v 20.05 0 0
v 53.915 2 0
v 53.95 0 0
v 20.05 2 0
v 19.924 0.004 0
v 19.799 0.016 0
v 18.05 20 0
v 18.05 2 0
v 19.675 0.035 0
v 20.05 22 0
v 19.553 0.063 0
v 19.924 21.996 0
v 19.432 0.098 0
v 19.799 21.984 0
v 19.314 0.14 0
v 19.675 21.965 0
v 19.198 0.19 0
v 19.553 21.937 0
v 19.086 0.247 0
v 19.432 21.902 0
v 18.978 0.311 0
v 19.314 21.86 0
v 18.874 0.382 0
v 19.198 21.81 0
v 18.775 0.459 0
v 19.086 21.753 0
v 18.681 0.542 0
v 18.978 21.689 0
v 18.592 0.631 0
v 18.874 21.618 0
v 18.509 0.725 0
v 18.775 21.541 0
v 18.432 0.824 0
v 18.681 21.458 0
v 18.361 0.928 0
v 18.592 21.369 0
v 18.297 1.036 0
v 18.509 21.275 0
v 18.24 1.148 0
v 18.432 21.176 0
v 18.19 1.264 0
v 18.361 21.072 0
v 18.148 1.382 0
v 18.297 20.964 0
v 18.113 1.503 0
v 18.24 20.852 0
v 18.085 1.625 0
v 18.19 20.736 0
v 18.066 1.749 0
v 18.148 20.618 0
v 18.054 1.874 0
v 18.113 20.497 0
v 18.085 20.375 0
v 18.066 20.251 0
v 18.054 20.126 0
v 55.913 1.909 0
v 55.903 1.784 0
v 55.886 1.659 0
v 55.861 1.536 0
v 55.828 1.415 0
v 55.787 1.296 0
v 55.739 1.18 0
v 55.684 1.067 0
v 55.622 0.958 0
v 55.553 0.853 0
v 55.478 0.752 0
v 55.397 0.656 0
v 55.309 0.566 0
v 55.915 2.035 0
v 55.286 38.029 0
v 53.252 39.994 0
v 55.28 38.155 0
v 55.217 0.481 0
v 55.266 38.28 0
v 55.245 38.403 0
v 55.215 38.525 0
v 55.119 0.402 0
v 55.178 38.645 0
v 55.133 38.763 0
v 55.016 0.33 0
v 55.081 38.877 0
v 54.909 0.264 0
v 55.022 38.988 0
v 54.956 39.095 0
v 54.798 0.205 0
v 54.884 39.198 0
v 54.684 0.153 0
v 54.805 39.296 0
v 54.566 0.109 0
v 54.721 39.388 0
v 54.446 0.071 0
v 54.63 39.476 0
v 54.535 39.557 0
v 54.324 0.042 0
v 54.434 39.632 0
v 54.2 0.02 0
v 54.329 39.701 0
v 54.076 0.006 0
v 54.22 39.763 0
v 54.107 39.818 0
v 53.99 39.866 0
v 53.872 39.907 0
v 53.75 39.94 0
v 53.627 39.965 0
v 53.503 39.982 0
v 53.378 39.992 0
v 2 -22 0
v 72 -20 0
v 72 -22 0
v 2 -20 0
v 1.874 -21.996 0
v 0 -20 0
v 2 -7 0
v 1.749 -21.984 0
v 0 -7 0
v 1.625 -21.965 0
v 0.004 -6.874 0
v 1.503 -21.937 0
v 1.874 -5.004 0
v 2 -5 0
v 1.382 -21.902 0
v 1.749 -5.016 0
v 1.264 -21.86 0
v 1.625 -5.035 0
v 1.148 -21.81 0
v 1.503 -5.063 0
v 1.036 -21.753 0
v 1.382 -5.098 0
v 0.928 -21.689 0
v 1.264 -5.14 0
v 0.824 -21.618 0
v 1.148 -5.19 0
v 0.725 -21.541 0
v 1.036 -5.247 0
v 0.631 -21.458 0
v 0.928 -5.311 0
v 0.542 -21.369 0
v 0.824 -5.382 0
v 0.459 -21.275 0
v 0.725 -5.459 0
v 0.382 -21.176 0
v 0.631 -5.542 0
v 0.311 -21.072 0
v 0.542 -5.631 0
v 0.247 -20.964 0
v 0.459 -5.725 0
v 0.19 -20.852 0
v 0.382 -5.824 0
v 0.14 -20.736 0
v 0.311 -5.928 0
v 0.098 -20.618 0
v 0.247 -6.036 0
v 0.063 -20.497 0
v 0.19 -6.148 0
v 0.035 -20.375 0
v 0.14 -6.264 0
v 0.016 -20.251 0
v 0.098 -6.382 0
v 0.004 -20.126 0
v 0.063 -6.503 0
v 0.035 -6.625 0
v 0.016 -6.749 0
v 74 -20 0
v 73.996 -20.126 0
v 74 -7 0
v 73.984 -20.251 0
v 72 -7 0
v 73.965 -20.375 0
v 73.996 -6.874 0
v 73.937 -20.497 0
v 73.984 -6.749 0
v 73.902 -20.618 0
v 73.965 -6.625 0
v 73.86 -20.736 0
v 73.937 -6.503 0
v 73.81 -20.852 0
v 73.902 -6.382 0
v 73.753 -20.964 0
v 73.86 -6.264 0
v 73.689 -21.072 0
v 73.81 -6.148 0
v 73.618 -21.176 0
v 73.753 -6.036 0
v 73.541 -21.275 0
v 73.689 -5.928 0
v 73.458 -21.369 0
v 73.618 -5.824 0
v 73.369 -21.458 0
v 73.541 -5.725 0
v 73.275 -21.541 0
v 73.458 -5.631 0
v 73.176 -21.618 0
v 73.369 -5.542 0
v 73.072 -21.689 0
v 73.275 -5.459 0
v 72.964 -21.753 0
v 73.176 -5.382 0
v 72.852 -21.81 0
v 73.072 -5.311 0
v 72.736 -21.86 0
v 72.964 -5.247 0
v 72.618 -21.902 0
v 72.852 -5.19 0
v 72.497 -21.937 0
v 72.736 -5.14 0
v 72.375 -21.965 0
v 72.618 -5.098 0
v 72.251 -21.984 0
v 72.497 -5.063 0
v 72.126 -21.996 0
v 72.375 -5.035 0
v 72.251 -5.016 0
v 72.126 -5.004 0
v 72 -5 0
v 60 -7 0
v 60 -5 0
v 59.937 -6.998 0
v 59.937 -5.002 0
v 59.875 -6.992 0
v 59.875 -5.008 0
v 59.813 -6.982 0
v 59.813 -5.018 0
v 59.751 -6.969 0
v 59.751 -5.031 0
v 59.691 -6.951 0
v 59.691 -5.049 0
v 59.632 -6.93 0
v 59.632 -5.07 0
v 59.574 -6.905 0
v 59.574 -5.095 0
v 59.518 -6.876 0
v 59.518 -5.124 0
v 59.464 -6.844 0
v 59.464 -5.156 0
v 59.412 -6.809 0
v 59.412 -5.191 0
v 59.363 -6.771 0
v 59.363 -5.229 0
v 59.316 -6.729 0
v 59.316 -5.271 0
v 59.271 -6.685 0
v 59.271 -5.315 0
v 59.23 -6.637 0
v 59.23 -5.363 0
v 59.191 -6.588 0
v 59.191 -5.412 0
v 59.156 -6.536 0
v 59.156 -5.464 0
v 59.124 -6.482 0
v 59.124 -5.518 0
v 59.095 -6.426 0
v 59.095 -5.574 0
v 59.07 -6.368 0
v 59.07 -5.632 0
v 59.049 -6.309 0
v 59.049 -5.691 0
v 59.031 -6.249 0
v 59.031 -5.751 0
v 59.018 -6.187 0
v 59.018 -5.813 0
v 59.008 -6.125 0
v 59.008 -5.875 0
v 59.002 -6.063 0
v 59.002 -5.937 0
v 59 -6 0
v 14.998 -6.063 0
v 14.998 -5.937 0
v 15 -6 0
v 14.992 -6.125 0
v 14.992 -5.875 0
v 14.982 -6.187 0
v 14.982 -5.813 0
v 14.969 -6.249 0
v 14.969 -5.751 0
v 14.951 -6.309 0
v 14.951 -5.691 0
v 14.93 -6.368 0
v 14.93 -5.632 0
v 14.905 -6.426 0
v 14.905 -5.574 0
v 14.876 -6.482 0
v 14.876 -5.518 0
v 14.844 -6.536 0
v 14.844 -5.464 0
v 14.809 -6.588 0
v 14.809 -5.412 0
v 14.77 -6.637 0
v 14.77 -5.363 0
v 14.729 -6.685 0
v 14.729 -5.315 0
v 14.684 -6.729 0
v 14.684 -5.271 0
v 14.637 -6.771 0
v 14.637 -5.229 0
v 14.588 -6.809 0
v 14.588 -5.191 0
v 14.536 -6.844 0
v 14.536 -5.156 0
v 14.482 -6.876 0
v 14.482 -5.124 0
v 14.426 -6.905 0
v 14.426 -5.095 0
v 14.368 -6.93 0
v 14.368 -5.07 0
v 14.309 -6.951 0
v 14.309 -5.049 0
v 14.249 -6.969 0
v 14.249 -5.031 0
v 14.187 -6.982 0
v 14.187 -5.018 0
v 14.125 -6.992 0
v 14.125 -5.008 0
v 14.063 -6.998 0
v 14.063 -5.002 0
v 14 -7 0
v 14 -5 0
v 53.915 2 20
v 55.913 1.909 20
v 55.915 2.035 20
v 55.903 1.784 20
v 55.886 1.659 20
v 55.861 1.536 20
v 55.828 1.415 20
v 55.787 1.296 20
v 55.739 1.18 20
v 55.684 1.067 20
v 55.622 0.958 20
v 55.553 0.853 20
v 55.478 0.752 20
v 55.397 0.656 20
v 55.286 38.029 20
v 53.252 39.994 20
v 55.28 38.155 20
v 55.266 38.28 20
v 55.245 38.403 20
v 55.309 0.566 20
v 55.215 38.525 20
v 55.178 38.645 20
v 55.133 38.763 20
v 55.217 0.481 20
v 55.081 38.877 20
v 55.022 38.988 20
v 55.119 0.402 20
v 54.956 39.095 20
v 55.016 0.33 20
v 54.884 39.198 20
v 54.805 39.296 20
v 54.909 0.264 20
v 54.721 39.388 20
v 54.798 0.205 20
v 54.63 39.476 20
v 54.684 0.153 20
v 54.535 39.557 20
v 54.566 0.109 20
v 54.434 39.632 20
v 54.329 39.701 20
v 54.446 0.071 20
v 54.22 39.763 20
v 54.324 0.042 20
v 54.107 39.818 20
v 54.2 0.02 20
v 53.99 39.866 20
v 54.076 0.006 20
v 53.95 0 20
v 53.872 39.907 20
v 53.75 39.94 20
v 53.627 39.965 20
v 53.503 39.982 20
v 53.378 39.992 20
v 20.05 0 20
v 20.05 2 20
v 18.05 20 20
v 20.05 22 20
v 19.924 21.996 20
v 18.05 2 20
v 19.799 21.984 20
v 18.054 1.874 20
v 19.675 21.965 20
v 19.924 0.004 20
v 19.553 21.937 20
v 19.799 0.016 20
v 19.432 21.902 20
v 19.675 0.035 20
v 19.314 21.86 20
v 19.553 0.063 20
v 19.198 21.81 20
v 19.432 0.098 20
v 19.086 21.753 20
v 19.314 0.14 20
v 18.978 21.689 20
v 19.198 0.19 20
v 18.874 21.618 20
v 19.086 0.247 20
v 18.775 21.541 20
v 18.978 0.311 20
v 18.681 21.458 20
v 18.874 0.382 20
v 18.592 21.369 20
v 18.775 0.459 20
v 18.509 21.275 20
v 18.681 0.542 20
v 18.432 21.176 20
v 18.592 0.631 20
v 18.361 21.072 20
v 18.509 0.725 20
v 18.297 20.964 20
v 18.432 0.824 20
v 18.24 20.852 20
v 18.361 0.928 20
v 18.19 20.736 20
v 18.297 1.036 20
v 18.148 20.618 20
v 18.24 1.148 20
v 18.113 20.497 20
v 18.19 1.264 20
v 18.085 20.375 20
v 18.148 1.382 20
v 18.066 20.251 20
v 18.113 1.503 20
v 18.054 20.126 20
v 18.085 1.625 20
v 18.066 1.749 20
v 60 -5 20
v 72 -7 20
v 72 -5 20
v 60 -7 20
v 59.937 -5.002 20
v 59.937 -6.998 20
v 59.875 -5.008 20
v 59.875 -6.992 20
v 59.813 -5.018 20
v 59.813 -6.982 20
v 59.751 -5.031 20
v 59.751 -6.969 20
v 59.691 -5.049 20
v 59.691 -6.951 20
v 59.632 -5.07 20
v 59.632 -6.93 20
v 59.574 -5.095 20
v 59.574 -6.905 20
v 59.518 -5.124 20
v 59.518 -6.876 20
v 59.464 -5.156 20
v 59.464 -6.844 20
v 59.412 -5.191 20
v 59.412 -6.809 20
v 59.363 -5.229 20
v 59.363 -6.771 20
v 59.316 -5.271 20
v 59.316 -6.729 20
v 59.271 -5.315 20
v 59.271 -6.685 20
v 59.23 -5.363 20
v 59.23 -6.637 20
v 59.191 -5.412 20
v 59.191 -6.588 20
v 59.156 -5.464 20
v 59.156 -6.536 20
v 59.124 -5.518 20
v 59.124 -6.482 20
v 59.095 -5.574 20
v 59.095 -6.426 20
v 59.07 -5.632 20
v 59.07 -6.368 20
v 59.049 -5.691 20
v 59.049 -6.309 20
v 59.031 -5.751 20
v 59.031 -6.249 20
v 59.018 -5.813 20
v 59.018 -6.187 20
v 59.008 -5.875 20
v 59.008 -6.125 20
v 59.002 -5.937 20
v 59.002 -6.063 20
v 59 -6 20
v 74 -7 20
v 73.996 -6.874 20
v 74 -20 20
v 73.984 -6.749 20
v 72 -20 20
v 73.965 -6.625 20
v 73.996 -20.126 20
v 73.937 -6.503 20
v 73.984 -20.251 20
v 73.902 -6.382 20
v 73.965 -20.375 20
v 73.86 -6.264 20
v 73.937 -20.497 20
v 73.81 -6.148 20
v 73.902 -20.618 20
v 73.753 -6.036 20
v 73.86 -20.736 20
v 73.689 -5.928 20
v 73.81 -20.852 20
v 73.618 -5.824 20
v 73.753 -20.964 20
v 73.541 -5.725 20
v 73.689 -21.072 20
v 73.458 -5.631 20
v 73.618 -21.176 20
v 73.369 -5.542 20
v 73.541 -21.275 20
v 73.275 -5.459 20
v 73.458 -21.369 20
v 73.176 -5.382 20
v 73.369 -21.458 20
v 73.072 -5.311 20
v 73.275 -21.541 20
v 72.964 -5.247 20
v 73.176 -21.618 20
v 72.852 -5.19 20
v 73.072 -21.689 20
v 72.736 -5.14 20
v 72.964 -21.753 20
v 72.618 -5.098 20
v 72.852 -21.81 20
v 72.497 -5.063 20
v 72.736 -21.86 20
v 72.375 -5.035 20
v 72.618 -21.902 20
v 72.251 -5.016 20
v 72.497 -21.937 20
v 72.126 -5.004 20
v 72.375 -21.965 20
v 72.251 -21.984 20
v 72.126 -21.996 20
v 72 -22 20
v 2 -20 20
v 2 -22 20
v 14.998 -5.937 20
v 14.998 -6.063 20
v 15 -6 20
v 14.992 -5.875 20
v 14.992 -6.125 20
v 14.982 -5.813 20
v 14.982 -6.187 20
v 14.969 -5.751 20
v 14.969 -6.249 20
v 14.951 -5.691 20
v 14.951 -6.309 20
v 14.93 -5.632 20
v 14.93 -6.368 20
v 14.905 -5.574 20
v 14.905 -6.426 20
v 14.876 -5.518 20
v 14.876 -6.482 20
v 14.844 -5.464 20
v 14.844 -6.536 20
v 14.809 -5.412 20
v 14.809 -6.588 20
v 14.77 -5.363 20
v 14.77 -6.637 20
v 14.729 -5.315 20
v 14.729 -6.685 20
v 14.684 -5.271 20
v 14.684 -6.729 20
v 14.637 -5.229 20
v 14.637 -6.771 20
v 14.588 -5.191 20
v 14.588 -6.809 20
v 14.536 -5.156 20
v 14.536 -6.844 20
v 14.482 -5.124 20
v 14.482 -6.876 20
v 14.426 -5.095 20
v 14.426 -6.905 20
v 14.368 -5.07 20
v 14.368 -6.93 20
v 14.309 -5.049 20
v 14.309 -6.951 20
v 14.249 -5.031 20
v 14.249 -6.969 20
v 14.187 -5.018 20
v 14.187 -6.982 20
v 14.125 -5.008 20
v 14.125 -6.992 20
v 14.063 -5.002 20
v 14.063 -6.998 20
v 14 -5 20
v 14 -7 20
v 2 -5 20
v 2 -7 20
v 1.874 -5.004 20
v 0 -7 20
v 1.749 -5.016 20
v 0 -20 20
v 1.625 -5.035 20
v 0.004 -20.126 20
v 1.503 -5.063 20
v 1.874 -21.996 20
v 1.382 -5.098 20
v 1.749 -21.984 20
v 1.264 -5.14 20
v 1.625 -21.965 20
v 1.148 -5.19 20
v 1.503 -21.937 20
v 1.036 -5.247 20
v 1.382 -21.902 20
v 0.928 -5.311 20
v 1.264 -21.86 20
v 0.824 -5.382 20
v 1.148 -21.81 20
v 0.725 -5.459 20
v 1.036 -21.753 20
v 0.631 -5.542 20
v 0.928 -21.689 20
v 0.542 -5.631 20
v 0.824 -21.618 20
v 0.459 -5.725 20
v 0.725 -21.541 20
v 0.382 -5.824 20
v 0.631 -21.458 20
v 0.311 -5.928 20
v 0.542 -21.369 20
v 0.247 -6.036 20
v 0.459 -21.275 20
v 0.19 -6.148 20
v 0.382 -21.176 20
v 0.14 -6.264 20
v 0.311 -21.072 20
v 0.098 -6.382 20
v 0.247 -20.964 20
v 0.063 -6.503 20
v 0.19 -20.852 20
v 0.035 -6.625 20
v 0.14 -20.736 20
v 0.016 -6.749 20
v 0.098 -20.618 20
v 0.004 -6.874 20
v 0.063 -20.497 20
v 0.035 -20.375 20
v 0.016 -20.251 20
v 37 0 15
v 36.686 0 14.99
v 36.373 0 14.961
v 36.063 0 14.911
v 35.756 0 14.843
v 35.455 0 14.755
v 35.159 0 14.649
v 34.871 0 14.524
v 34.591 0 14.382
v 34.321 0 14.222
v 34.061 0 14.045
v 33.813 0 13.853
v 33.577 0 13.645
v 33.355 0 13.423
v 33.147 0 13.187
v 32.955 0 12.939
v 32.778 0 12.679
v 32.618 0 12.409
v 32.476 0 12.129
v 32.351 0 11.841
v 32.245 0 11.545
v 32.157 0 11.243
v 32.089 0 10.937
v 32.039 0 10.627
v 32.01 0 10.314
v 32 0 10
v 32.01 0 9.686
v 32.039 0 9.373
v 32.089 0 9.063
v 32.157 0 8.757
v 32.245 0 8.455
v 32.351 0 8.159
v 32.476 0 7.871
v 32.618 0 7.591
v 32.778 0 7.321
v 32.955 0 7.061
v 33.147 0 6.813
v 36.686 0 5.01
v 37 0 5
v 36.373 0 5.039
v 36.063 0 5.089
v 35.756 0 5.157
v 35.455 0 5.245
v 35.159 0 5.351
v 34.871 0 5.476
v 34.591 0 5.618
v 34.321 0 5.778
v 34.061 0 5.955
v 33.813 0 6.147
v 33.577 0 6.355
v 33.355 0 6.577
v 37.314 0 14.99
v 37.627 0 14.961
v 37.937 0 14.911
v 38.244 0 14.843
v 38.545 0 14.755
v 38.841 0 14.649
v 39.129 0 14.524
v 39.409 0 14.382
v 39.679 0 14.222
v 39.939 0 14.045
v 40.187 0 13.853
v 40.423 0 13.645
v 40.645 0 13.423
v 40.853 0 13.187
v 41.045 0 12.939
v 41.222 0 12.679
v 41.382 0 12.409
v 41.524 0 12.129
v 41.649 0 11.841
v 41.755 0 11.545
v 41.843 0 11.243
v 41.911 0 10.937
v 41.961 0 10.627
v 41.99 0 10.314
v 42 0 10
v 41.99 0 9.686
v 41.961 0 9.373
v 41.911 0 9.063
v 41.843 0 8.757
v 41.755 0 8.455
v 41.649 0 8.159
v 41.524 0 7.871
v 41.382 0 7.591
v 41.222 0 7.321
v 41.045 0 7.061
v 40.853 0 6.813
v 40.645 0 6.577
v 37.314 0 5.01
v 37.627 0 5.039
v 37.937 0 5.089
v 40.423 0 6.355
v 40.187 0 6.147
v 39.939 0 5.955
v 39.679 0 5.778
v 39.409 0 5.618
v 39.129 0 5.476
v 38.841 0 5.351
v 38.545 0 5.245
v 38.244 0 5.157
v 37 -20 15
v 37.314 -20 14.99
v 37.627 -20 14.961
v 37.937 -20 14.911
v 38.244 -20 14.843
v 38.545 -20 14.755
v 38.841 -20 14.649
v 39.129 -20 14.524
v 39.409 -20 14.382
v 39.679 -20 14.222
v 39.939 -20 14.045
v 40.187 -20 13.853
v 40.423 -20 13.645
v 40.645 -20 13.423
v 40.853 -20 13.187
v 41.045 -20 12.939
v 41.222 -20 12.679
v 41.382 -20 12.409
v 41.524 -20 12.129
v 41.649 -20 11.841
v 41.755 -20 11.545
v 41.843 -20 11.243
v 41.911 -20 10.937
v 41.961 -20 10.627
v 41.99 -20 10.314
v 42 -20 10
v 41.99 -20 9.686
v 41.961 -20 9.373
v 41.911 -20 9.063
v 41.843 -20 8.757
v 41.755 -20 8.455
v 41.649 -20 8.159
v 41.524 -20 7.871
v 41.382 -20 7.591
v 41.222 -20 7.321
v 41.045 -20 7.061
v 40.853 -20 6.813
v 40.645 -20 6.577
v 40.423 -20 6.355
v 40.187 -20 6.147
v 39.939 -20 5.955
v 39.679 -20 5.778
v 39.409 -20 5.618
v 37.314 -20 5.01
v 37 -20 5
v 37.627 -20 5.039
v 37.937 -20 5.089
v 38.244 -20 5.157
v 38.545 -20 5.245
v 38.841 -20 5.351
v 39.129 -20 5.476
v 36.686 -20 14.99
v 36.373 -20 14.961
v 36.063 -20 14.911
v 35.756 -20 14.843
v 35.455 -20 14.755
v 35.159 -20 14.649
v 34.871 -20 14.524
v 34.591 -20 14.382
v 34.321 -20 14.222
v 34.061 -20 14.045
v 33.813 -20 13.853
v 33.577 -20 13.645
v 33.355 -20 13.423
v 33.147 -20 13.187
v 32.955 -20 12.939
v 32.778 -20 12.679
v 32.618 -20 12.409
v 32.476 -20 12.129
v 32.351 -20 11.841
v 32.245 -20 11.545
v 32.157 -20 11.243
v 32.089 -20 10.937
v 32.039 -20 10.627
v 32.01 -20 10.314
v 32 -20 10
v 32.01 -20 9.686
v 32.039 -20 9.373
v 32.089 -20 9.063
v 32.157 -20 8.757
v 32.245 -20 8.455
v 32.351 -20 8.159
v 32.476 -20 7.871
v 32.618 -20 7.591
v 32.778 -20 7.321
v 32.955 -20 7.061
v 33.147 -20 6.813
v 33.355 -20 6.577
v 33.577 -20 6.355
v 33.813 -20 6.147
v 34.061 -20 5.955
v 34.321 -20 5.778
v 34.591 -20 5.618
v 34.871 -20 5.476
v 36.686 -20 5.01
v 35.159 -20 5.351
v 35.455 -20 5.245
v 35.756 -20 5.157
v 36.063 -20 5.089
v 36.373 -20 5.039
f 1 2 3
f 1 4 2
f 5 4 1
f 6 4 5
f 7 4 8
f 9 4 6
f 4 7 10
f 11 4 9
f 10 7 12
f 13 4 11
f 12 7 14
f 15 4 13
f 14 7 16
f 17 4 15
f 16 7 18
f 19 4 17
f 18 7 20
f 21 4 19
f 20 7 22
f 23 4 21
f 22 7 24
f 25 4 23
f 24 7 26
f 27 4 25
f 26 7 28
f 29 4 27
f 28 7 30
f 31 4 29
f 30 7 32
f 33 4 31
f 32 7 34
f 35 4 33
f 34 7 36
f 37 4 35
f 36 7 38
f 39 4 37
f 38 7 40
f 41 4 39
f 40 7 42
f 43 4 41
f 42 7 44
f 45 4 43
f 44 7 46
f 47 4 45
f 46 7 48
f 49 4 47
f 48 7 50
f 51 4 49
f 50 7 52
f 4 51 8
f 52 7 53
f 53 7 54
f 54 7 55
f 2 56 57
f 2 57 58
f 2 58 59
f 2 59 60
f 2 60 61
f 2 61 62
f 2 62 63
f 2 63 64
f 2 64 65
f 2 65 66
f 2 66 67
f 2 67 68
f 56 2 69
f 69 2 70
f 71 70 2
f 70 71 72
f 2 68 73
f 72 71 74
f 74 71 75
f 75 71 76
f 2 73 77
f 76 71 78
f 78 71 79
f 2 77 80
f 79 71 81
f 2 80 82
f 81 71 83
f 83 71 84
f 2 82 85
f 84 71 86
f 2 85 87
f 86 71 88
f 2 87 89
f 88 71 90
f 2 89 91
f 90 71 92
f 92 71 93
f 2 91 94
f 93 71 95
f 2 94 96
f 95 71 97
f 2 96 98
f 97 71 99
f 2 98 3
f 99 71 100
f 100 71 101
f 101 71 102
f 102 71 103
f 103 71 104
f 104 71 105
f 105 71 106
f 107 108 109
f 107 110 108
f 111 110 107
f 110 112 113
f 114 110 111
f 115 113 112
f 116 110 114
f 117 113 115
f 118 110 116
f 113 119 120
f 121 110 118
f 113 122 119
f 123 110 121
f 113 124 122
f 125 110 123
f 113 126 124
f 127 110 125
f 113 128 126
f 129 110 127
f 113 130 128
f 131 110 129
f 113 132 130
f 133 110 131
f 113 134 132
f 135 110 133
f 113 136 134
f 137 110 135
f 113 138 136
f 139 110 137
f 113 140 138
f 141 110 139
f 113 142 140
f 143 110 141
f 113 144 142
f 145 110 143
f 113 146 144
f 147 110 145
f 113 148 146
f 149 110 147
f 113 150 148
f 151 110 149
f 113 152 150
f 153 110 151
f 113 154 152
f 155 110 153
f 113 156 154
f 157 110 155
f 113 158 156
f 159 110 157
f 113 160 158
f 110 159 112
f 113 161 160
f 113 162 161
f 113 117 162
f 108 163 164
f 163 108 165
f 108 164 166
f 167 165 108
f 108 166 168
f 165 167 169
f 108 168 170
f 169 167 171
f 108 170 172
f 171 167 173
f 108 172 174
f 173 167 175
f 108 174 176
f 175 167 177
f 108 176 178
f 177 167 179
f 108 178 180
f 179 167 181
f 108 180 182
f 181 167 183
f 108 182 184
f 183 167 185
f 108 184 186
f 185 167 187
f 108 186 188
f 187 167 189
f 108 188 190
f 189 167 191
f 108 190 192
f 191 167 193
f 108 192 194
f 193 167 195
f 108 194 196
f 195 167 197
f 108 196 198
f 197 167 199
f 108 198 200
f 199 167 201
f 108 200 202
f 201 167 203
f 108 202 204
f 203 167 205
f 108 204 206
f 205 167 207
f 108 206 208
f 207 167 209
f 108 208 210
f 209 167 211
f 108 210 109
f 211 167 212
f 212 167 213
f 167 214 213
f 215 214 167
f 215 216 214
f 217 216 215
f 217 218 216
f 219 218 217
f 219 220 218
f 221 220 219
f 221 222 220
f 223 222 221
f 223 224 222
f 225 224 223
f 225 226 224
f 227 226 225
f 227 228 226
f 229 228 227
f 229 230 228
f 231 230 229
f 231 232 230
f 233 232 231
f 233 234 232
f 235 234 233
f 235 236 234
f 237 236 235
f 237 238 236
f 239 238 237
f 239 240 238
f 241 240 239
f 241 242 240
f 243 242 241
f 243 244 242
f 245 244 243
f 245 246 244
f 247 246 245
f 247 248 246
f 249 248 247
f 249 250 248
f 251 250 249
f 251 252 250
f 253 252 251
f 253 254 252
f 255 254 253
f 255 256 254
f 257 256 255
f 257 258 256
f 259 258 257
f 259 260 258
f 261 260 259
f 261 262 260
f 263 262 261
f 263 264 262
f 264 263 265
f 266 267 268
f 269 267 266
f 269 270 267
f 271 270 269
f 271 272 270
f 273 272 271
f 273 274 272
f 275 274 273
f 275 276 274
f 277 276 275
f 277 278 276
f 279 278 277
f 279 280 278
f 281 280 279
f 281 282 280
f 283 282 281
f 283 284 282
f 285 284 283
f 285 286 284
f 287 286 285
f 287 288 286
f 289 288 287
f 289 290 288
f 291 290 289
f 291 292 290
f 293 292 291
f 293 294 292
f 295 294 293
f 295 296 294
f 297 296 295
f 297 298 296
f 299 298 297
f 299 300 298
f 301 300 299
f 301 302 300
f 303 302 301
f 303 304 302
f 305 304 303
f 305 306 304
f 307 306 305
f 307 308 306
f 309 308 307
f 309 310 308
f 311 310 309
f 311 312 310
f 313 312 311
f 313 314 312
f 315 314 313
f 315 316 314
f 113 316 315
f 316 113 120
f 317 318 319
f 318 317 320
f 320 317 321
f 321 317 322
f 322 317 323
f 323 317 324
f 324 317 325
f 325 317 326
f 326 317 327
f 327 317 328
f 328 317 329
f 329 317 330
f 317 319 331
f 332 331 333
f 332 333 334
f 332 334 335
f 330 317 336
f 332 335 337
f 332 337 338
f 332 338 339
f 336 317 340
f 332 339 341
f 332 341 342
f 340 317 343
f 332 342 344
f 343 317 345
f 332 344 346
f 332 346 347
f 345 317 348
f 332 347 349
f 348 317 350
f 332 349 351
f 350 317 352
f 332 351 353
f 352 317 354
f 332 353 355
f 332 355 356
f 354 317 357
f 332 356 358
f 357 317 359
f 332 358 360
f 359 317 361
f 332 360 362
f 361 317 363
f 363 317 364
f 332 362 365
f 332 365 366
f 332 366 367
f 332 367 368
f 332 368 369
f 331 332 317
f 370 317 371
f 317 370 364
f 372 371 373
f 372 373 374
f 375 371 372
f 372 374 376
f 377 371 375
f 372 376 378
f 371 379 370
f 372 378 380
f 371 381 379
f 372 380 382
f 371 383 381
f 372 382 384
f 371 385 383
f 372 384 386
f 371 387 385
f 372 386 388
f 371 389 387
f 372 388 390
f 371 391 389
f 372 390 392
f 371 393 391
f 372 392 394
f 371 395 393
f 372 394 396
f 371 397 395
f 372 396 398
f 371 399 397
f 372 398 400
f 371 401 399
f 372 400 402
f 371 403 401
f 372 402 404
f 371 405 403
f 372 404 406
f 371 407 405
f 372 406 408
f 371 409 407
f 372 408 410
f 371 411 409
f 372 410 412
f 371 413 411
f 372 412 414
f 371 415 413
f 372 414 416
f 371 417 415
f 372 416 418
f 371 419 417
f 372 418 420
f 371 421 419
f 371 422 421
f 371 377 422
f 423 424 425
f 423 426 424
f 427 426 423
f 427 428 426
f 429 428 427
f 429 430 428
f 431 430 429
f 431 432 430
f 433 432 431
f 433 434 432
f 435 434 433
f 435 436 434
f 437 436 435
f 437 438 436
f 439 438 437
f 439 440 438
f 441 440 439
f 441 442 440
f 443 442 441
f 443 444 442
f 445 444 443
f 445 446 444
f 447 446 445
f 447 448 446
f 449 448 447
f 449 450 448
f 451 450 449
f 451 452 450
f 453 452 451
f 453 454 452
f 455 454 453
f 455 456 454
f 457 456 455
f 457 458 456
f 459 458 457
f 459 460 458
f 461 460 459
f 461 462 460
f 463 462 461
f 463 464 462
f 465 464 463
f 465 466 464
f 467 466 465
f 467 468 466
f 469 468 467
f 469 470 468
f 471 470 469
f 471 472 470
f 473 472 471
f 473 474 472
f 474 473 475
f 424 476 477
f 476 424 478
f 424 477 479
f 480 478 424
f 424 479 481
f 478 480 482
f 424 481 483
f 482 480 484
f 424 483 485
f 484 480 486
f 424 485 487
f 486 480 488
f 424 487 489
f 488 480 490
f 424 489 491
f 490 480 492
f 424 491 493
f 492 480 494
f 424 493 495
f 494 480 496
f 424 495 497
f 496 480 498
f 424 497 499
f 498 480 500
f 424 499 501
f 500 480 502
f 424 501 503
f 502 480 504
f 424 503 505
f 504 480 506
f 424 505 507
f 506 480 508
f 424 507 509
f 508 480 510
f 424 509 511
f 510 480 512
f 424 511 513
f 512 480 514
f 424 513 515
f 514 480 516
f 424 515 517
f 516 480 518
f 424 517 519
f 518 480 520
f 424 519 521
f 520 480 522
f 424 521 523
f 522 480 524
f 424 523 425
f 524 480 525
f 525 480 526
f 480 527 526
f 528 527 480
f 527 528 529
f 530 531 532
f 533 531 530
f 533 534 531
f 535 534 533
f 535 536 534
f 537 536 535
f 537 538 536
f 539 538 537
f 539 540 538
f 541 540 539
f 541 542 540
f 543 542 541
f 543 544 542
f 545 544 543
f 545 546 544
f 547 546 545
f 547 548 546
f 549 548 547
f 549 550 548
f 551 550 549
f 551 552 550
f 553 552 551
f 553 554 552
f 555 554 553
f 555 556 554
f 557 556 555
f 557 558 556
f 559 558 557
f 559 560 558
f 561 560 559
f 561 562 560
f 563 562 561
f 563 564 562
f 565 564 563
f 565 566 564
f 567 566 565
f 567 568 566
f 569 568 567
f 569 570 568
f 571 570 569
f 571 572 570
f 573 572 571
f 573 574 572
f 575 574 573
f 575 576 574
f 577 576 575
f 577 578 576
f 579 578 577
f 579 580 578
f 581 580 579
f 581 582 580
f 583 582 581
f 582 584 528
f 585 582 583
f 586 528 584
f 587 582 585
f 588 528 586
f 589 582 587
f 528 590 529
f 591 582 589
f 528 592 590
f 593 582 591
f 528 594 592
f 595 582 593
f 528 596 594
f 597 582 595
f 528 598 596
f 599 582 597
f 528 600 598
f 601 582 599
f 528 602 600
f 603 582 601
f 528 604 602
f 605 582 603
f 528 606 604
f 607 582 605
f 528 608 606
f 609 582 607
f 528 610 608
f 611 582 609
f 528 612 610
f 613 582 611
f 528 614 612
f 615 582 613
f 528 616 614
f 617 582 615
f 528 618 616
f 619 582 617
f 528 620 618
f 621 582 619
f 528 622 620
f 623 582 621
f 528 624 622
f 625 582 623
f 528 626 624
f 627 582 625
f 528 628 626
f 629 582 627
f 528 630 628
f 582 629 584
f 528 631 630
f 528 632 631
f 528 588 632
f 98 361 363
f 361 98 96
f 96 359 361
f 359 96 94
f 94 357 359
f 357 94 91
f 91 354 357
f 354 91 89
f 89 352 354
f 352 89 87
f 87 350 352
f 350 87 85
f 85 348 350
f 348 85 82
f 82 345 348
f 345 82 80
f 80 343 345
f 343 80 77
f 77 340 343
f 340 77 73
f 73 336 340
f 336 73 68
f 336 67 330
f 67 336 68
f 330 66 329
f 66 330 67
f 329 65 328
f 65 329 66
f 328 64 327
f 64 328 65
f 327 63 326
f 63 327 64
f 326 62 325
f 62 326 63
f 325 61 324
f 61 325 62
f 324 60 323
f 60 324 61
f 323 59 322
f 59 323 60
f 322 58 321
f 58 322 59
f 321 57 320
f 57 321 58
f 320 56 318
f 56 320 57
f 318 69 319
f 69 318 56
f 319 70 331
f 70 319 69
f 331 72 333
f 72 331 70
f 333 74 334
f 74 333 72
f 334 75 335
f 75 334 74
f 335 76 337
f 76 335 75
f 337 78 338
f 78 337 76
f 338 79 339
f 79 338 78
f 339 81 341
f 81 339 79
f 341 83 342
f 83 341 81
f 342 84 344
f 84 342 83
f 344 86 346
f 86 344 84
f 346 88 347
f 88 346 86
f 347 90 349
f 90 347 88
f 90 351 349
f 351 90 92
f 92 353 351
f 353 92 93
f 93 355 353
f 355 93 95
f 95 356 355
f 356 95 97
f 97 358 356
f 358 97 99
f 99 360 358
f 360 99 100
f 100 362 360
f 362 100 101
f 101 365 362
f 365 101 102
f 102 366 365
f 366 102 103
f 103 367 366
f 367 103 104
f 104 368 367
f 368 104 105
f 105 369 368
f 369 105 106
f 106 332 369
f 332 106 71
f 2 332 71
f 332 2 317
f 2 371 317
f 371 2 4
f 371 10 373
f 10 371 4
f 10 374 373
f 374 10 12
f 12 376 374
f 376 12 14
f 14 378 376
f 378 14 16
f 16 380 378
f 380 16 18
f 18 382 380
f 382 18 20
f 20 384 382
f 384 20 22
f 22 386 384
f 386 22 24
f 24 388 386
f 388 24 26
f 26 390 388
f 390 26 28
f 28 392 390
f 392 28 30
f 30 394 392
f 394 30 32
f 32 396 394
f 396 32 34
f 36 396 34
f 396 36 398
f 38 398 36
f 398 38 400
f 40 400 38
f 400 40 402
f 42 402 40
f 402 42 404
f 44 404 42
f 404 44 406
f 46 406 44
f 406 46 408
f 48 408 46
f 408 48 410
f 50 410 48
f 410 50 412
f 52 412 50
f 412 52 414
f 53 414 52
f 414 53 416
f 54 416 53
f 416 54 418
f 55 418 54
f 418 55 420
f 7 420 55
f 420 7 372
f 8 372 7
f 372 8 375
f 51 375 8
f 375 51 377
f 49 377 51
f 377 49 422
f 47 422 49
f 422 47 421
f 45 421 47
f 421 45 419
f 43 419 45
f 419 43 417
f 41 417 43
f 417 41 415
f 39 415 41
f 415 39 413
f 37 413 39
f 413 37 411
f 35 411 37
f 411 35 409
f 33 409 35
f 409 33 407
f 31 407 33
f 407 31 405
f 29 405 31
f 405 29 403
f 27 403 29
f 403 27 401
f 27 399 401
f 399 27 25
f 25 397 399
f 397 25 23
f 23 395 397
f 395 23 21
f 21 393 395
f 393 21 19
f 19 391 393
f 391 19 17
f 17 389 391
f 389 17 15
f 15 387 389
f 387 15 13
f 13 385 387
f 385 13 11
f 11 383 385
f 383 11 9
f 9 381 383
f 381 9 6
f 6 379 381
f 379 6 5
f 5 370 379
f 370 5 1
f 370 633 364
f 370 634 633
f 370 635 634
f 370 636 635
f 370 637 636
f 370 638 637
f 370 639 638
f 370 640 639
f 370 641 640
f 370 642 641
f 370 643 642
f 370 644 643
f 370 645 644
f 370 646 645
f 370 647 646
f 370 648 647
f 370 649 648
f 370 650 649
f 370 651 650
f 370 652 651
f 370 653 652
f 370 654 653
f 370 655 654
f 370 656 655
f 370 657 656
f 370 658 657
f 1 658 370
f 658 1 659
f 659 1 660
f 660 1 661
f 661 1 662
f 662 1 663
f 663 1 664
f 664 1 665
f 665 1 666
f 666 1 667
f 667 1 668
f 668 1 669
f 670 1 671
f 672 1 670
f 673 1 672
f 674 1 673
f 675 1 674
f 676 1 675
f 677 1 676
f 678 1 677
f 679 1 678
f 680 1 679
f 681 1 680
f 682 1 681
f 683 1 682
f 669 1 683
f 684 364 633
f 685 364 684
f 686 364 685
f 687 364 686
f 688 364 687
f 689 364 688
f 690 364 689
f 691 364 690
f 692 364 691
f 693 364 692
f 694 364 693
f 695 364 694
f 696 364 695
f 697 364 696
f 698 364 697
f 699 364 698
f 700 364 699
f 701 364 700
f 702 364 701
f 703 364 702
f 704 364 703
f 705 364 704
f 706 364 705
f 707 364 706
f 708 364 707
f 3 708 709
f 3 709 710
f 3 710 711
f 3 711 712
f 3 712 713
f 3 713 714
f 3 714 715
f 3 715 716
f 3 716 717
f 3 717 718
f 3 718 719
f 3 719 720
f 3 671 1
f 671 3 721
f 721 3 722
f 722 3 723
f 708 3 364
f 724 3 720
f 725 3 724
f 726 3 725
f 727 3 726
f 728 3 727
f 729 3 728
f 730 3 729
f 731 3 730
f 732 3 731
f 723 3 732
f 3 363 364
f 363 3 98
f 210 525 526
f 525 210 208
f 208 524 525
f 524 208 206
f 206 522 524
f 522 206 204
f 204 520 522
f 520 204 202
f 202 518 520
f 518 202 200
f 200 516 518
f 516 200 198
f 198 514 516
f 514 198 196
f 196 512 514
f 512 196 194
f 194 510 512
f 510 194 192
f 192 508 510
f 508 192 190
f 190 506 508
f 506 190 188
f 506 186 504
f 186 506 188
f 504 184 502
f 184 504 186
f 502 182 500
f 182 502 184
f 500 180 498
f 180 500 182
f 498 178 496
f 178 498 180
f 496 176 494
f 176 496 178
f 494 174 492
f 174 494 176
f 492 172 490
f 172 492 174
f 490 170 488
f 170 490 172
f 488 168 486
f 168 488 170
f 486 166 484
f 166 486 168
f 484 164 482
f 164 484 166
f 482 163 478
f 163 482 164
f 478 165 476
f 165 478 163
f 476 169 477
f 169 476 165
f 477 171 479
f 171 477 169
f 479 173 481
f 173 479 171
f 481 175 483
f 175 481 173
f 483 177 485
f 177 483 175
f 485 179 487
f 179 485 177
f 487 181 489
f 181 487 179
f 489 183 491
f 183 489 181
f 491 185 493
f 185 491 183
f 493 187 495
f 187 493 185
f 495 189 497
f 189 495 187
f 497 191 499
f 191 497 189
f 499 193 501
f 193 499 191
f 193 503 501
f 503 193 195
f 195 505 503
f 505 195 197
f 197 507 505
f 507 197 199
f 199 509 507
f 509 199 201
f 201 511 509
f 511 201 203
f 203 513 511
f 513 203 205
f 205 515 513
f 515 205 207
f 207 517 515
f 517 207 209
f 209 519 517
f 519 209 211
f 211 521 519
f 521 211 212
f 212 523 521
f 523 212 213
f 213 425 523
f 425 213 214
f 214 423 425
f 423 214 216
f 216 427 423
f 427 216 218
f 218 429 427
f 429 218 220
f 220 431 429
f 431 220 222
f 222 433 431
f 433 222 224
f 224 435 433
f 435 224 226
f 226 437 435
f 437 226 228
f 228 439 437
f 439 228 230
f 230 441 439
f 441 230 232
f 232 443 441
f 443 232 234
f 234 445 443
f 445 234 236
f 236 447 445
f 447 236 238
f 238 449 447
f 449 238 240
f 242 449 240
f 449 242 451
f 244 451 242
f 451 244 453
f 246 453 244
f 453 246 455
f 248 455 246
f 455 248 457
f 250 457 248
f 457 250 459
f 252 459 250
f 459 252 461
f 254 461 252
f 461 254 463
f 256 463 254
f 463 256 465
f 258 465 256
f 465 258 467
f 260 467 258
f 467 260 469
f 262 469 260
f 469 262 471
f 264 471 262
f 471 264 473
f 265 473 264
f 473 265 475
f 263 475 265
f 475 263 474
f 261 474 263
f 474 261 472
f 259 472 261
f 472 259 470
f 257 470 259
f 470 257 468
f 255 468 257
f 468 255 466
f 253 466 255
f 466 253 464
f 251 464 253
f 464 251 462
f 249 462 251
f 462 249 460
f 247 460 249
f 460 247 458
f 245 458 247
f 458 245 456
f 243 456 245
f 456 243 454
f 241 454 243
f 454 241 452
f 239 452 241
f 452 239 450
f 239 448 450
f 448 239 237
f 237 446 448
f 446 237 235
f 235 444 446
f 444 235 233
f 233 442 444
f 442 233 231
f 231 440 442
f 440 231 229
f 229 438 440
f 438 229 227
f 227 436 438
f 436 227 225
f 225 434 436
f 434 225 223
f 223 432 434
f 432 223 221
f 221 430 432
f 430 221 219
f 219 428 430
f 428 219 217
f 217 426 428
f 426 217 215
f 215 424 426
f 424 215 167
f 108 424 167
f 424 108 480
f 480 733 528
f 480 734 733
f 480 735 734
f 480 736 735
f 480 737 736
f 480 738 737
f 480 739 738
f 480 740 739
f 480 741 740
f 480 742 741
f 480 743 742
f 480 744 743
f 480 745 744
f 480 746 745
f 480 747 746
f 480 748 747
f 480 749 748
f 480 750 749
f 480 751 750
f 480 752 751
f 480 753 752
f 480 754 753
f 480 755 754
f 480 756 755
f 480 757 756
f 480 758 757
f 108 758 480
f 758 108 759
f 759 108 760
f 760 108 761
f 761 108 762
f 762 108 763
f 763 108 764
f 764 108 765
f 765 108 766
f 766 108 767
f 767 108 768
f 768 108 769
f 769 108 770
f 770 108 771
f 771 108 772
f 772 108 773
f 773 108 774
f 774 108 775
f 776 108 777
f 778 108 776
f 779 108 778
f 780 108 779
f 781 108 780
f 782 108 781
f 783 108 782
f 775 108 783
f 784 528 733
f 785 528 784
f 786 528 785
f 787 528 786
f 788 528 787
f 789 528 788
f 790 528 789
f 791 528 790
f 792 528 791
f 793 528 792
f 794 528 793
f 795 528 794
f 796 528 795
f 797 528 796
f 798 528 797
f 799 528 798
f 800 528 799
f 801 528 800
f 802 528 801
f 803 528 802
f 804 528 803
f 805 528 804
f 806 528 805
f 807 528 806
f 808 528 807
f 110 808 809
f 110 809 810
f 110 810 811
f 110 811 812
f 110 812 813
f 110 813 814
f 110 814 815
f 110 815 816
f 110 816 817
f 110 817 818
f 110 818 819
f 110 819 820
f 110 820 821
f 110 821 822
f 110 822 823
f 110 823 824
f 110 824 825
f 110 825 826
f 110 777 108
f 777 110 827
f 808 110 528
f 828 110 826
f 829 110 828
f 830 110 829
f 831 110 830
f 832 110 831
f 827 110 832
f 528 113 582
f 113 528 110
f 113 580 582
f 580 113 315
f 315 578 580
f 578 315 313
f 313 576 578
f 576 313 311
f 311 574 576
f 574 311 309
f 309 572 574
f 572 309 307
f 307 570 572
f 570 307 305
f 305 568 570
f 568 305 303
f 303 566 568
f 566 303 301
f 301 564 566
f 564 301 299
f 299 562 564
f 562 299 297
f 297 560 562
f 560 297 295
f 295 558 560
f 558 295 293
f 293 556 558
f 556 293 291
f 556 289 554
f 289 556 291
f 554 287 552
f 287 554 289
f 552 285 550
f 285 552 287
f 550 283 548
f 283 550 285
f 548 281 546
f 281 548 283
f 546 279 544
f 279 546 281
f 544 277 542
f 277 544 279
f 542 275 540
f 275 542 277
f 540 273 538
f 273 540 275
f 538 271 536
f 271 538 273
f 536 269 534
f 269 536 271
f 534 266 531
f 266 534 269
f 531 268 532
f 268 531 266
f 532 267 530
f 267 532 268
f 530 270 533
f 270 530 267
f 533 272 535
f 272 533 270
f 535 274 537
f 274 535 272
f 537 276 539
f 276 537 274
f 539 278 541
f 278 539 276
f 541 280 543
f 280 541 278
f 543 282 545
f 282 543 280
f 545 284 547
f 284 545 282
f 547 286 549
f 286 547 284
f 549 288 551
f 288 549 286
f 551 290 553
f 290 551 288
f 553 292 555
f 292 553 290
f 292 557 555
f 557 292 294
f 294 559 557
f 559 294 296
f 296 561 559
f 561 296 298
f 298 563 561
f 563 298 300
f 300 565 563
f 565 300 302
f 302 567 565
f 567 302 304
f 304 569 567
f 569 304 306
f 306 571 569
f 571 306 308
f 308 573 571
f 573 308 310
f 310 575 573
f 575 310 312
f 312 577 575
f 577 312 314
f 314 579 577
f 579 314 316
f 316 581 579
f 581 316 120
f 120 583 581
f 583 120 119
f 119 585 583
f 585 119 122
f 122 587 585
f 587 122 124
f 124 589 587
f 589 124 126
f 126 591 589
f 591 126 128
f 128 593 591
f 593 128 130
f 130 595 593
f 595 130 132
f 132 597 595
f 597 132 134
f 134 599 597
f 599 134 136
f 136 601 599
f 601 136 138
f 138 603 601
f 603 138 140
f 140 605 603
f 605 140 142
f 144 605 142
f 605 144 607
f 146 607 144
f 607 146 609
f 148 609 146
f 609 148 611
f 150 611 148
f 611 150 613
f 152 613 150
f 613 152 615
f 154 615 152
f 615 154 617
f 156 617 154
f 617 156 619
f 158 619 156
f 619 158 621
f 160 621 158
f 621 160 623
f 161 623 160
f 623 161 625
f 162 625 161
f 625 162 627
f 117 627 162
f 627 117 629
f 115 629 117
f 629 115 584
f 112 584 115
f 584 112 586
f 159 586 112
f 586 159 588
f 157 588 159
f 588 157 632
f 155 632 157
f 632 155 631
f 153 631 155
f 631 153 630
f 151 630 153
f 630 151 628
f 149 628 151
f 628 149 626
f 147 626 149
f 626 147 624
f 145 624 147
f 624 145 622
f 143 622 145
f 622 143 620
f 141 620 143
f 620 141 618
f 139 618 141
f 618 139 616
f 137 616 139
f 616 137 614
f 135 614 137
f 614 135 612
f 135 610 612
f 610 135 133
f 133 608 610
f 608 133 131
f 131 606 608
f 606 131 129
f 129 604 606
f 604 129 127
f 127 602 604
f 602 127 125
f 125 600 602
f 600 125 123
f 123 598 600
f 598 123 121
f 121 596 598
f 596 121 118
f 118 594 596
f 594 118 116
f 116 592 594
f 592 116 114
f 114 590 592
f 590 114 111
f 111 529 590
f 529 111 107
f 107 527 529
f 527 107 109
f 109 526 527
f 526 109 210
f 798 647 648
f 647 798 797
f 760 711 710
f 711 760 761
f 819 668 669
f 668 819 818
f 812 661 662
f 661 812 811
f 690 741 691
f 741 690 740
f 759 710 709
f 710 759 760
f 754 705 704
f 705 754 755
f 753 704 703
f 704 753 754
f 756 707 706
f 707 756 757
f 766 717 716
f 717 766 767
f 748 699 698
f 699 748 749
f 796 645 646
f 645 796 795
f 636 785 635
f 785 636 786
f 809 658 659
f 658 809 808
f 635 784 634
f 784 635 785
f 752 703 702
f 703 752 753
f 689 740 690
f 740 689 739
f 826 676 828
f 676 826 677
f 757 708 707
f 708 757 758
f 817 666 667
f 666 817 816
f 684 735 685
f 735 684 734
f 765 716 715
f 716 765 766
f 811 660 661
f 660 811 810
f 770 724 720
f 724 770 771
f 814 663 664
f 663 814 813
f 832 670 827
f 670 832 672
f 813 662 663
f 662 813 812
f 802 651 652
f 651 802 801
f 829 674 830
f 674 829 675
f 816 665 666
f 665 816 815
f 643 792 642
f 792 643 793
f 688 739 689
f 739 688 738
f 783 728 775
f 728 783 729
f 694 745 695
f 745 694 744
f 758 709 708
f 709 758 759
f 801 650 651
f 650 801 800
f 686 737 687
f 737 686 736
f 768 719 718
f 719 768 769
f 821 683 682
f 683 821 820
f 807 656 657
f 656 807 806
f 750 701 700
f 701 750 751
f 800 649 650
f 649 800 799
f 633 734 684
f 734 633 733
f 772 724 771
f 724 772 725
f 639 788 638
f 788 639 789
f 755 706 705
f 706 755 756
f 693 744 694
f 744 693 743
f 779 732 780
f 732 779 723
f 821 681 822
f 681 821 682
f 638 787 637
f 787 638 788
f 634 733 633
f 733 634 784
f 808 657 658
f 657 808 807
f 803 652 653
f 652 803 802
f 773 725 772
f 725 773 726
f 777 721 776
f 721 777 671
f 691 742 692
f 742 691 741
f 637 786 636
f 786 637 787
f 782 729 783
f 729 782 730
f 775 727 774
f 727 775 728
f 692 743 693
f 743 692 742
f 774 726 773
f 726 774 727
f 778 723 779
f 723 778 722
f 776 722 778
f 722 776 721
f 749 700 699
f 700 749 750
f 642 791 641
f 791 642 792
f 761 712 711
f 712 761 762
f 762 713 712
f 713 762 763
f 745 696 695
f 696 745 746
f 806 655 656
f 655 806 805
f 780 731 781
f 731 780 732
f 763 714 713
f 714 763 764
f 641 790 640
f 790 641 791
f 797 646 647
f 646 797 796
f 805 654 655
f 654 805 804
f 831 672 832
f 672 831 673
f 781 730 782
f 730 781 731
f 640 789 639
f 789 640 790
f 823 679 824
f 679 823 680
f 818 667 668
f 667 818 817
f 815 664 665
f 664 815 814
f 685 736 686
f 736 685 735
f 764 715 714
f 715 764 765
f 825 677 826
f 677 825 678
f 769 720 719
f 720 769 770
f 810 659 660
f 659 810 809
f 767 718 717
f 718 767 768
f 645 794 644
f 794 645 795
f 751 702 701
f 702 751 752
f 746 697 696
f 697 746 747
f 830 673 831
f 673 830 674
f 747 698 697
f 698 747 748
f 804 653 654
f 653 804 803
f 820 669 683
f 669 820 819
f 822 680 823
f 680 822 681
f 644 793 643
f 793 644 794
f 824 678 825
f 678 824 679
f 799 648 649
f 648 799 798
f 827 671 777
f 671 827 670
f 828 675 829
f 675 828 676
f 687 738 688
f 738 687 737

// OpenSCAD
// file: base.scad
// Height: 34
$fn = 100;
TIGHTNESS = .05;

linear_extrude(20)
bracket();

module bracket() {
  translate([TIGHTNESS, 0, 0])
  difference() {
    square([2, 22]);
    fillet();

    translate([0, 22, 0])
    rotate(270)
    fillet();
  }

  translate([2 + TIGHTNESS, 0, 0])
  square([34 - 2 * TIGHTNESS, 2]);

  translate([36 - TIGHTNESS, 0, 0])
  rotate(1)
  difference() {
    square([2, 40]);

    translate([2, 0, 0])
    rotate(90)
    fillet();

    translate([2, 40, 0])
    rotate(180)
    fillet();
  }
}

module fillet() {
  difference() {
    square(4, center=true);

    translate([2, 2, 0])
    circle(2);
  }
}
// main file
$fn = 100;

use <base.scad>;

DEPTH = 20;
GAP = 3;
FLANGE = 12;
WIDTH = 70;

linear_extrude(20) {
  translate([WIDTH / 2 - 17, 0, 0])
  bracket();

  translate([0, -DEPTH - 2]) {

    difference() {
      square([2, DEPTH - GAP]);
      fillet();

      translate([0, DEPTH - GAP, 0])
      rotate(270)
      fillet();
    }

    translate([2, DEPTH - GAP - 2, 0])
    union() {
      square([FLANGE, 2]);

      translate([FLANGE, 1, 0])
      circle(d = 2);
    }

    translate([2, 0, 0])
    square([WIDTH, 2]);

    translate([WIDTH + 2, 0, 0]) {
      difference() {
        square([2, DEPTH - GAP]);

        translate([2, 0, 0])
        rotate(90)
        fillet();

        translate([2, DEPTH - GAP, 0])
        rotate(180)
        fillet();
      }

      translate([-FLANGE, DEPTH - GAP - 2, 0])
      union() {
        square([FLANGE, 2]);

        translate([0, 1, 0])
        circle(d = 2);
      }
    }
  }
}

translate([WIDTH / 2 + 2, 0, 10])
rotate([90, 0, 0])
cylinder(d = 10, h = DEPTH);
